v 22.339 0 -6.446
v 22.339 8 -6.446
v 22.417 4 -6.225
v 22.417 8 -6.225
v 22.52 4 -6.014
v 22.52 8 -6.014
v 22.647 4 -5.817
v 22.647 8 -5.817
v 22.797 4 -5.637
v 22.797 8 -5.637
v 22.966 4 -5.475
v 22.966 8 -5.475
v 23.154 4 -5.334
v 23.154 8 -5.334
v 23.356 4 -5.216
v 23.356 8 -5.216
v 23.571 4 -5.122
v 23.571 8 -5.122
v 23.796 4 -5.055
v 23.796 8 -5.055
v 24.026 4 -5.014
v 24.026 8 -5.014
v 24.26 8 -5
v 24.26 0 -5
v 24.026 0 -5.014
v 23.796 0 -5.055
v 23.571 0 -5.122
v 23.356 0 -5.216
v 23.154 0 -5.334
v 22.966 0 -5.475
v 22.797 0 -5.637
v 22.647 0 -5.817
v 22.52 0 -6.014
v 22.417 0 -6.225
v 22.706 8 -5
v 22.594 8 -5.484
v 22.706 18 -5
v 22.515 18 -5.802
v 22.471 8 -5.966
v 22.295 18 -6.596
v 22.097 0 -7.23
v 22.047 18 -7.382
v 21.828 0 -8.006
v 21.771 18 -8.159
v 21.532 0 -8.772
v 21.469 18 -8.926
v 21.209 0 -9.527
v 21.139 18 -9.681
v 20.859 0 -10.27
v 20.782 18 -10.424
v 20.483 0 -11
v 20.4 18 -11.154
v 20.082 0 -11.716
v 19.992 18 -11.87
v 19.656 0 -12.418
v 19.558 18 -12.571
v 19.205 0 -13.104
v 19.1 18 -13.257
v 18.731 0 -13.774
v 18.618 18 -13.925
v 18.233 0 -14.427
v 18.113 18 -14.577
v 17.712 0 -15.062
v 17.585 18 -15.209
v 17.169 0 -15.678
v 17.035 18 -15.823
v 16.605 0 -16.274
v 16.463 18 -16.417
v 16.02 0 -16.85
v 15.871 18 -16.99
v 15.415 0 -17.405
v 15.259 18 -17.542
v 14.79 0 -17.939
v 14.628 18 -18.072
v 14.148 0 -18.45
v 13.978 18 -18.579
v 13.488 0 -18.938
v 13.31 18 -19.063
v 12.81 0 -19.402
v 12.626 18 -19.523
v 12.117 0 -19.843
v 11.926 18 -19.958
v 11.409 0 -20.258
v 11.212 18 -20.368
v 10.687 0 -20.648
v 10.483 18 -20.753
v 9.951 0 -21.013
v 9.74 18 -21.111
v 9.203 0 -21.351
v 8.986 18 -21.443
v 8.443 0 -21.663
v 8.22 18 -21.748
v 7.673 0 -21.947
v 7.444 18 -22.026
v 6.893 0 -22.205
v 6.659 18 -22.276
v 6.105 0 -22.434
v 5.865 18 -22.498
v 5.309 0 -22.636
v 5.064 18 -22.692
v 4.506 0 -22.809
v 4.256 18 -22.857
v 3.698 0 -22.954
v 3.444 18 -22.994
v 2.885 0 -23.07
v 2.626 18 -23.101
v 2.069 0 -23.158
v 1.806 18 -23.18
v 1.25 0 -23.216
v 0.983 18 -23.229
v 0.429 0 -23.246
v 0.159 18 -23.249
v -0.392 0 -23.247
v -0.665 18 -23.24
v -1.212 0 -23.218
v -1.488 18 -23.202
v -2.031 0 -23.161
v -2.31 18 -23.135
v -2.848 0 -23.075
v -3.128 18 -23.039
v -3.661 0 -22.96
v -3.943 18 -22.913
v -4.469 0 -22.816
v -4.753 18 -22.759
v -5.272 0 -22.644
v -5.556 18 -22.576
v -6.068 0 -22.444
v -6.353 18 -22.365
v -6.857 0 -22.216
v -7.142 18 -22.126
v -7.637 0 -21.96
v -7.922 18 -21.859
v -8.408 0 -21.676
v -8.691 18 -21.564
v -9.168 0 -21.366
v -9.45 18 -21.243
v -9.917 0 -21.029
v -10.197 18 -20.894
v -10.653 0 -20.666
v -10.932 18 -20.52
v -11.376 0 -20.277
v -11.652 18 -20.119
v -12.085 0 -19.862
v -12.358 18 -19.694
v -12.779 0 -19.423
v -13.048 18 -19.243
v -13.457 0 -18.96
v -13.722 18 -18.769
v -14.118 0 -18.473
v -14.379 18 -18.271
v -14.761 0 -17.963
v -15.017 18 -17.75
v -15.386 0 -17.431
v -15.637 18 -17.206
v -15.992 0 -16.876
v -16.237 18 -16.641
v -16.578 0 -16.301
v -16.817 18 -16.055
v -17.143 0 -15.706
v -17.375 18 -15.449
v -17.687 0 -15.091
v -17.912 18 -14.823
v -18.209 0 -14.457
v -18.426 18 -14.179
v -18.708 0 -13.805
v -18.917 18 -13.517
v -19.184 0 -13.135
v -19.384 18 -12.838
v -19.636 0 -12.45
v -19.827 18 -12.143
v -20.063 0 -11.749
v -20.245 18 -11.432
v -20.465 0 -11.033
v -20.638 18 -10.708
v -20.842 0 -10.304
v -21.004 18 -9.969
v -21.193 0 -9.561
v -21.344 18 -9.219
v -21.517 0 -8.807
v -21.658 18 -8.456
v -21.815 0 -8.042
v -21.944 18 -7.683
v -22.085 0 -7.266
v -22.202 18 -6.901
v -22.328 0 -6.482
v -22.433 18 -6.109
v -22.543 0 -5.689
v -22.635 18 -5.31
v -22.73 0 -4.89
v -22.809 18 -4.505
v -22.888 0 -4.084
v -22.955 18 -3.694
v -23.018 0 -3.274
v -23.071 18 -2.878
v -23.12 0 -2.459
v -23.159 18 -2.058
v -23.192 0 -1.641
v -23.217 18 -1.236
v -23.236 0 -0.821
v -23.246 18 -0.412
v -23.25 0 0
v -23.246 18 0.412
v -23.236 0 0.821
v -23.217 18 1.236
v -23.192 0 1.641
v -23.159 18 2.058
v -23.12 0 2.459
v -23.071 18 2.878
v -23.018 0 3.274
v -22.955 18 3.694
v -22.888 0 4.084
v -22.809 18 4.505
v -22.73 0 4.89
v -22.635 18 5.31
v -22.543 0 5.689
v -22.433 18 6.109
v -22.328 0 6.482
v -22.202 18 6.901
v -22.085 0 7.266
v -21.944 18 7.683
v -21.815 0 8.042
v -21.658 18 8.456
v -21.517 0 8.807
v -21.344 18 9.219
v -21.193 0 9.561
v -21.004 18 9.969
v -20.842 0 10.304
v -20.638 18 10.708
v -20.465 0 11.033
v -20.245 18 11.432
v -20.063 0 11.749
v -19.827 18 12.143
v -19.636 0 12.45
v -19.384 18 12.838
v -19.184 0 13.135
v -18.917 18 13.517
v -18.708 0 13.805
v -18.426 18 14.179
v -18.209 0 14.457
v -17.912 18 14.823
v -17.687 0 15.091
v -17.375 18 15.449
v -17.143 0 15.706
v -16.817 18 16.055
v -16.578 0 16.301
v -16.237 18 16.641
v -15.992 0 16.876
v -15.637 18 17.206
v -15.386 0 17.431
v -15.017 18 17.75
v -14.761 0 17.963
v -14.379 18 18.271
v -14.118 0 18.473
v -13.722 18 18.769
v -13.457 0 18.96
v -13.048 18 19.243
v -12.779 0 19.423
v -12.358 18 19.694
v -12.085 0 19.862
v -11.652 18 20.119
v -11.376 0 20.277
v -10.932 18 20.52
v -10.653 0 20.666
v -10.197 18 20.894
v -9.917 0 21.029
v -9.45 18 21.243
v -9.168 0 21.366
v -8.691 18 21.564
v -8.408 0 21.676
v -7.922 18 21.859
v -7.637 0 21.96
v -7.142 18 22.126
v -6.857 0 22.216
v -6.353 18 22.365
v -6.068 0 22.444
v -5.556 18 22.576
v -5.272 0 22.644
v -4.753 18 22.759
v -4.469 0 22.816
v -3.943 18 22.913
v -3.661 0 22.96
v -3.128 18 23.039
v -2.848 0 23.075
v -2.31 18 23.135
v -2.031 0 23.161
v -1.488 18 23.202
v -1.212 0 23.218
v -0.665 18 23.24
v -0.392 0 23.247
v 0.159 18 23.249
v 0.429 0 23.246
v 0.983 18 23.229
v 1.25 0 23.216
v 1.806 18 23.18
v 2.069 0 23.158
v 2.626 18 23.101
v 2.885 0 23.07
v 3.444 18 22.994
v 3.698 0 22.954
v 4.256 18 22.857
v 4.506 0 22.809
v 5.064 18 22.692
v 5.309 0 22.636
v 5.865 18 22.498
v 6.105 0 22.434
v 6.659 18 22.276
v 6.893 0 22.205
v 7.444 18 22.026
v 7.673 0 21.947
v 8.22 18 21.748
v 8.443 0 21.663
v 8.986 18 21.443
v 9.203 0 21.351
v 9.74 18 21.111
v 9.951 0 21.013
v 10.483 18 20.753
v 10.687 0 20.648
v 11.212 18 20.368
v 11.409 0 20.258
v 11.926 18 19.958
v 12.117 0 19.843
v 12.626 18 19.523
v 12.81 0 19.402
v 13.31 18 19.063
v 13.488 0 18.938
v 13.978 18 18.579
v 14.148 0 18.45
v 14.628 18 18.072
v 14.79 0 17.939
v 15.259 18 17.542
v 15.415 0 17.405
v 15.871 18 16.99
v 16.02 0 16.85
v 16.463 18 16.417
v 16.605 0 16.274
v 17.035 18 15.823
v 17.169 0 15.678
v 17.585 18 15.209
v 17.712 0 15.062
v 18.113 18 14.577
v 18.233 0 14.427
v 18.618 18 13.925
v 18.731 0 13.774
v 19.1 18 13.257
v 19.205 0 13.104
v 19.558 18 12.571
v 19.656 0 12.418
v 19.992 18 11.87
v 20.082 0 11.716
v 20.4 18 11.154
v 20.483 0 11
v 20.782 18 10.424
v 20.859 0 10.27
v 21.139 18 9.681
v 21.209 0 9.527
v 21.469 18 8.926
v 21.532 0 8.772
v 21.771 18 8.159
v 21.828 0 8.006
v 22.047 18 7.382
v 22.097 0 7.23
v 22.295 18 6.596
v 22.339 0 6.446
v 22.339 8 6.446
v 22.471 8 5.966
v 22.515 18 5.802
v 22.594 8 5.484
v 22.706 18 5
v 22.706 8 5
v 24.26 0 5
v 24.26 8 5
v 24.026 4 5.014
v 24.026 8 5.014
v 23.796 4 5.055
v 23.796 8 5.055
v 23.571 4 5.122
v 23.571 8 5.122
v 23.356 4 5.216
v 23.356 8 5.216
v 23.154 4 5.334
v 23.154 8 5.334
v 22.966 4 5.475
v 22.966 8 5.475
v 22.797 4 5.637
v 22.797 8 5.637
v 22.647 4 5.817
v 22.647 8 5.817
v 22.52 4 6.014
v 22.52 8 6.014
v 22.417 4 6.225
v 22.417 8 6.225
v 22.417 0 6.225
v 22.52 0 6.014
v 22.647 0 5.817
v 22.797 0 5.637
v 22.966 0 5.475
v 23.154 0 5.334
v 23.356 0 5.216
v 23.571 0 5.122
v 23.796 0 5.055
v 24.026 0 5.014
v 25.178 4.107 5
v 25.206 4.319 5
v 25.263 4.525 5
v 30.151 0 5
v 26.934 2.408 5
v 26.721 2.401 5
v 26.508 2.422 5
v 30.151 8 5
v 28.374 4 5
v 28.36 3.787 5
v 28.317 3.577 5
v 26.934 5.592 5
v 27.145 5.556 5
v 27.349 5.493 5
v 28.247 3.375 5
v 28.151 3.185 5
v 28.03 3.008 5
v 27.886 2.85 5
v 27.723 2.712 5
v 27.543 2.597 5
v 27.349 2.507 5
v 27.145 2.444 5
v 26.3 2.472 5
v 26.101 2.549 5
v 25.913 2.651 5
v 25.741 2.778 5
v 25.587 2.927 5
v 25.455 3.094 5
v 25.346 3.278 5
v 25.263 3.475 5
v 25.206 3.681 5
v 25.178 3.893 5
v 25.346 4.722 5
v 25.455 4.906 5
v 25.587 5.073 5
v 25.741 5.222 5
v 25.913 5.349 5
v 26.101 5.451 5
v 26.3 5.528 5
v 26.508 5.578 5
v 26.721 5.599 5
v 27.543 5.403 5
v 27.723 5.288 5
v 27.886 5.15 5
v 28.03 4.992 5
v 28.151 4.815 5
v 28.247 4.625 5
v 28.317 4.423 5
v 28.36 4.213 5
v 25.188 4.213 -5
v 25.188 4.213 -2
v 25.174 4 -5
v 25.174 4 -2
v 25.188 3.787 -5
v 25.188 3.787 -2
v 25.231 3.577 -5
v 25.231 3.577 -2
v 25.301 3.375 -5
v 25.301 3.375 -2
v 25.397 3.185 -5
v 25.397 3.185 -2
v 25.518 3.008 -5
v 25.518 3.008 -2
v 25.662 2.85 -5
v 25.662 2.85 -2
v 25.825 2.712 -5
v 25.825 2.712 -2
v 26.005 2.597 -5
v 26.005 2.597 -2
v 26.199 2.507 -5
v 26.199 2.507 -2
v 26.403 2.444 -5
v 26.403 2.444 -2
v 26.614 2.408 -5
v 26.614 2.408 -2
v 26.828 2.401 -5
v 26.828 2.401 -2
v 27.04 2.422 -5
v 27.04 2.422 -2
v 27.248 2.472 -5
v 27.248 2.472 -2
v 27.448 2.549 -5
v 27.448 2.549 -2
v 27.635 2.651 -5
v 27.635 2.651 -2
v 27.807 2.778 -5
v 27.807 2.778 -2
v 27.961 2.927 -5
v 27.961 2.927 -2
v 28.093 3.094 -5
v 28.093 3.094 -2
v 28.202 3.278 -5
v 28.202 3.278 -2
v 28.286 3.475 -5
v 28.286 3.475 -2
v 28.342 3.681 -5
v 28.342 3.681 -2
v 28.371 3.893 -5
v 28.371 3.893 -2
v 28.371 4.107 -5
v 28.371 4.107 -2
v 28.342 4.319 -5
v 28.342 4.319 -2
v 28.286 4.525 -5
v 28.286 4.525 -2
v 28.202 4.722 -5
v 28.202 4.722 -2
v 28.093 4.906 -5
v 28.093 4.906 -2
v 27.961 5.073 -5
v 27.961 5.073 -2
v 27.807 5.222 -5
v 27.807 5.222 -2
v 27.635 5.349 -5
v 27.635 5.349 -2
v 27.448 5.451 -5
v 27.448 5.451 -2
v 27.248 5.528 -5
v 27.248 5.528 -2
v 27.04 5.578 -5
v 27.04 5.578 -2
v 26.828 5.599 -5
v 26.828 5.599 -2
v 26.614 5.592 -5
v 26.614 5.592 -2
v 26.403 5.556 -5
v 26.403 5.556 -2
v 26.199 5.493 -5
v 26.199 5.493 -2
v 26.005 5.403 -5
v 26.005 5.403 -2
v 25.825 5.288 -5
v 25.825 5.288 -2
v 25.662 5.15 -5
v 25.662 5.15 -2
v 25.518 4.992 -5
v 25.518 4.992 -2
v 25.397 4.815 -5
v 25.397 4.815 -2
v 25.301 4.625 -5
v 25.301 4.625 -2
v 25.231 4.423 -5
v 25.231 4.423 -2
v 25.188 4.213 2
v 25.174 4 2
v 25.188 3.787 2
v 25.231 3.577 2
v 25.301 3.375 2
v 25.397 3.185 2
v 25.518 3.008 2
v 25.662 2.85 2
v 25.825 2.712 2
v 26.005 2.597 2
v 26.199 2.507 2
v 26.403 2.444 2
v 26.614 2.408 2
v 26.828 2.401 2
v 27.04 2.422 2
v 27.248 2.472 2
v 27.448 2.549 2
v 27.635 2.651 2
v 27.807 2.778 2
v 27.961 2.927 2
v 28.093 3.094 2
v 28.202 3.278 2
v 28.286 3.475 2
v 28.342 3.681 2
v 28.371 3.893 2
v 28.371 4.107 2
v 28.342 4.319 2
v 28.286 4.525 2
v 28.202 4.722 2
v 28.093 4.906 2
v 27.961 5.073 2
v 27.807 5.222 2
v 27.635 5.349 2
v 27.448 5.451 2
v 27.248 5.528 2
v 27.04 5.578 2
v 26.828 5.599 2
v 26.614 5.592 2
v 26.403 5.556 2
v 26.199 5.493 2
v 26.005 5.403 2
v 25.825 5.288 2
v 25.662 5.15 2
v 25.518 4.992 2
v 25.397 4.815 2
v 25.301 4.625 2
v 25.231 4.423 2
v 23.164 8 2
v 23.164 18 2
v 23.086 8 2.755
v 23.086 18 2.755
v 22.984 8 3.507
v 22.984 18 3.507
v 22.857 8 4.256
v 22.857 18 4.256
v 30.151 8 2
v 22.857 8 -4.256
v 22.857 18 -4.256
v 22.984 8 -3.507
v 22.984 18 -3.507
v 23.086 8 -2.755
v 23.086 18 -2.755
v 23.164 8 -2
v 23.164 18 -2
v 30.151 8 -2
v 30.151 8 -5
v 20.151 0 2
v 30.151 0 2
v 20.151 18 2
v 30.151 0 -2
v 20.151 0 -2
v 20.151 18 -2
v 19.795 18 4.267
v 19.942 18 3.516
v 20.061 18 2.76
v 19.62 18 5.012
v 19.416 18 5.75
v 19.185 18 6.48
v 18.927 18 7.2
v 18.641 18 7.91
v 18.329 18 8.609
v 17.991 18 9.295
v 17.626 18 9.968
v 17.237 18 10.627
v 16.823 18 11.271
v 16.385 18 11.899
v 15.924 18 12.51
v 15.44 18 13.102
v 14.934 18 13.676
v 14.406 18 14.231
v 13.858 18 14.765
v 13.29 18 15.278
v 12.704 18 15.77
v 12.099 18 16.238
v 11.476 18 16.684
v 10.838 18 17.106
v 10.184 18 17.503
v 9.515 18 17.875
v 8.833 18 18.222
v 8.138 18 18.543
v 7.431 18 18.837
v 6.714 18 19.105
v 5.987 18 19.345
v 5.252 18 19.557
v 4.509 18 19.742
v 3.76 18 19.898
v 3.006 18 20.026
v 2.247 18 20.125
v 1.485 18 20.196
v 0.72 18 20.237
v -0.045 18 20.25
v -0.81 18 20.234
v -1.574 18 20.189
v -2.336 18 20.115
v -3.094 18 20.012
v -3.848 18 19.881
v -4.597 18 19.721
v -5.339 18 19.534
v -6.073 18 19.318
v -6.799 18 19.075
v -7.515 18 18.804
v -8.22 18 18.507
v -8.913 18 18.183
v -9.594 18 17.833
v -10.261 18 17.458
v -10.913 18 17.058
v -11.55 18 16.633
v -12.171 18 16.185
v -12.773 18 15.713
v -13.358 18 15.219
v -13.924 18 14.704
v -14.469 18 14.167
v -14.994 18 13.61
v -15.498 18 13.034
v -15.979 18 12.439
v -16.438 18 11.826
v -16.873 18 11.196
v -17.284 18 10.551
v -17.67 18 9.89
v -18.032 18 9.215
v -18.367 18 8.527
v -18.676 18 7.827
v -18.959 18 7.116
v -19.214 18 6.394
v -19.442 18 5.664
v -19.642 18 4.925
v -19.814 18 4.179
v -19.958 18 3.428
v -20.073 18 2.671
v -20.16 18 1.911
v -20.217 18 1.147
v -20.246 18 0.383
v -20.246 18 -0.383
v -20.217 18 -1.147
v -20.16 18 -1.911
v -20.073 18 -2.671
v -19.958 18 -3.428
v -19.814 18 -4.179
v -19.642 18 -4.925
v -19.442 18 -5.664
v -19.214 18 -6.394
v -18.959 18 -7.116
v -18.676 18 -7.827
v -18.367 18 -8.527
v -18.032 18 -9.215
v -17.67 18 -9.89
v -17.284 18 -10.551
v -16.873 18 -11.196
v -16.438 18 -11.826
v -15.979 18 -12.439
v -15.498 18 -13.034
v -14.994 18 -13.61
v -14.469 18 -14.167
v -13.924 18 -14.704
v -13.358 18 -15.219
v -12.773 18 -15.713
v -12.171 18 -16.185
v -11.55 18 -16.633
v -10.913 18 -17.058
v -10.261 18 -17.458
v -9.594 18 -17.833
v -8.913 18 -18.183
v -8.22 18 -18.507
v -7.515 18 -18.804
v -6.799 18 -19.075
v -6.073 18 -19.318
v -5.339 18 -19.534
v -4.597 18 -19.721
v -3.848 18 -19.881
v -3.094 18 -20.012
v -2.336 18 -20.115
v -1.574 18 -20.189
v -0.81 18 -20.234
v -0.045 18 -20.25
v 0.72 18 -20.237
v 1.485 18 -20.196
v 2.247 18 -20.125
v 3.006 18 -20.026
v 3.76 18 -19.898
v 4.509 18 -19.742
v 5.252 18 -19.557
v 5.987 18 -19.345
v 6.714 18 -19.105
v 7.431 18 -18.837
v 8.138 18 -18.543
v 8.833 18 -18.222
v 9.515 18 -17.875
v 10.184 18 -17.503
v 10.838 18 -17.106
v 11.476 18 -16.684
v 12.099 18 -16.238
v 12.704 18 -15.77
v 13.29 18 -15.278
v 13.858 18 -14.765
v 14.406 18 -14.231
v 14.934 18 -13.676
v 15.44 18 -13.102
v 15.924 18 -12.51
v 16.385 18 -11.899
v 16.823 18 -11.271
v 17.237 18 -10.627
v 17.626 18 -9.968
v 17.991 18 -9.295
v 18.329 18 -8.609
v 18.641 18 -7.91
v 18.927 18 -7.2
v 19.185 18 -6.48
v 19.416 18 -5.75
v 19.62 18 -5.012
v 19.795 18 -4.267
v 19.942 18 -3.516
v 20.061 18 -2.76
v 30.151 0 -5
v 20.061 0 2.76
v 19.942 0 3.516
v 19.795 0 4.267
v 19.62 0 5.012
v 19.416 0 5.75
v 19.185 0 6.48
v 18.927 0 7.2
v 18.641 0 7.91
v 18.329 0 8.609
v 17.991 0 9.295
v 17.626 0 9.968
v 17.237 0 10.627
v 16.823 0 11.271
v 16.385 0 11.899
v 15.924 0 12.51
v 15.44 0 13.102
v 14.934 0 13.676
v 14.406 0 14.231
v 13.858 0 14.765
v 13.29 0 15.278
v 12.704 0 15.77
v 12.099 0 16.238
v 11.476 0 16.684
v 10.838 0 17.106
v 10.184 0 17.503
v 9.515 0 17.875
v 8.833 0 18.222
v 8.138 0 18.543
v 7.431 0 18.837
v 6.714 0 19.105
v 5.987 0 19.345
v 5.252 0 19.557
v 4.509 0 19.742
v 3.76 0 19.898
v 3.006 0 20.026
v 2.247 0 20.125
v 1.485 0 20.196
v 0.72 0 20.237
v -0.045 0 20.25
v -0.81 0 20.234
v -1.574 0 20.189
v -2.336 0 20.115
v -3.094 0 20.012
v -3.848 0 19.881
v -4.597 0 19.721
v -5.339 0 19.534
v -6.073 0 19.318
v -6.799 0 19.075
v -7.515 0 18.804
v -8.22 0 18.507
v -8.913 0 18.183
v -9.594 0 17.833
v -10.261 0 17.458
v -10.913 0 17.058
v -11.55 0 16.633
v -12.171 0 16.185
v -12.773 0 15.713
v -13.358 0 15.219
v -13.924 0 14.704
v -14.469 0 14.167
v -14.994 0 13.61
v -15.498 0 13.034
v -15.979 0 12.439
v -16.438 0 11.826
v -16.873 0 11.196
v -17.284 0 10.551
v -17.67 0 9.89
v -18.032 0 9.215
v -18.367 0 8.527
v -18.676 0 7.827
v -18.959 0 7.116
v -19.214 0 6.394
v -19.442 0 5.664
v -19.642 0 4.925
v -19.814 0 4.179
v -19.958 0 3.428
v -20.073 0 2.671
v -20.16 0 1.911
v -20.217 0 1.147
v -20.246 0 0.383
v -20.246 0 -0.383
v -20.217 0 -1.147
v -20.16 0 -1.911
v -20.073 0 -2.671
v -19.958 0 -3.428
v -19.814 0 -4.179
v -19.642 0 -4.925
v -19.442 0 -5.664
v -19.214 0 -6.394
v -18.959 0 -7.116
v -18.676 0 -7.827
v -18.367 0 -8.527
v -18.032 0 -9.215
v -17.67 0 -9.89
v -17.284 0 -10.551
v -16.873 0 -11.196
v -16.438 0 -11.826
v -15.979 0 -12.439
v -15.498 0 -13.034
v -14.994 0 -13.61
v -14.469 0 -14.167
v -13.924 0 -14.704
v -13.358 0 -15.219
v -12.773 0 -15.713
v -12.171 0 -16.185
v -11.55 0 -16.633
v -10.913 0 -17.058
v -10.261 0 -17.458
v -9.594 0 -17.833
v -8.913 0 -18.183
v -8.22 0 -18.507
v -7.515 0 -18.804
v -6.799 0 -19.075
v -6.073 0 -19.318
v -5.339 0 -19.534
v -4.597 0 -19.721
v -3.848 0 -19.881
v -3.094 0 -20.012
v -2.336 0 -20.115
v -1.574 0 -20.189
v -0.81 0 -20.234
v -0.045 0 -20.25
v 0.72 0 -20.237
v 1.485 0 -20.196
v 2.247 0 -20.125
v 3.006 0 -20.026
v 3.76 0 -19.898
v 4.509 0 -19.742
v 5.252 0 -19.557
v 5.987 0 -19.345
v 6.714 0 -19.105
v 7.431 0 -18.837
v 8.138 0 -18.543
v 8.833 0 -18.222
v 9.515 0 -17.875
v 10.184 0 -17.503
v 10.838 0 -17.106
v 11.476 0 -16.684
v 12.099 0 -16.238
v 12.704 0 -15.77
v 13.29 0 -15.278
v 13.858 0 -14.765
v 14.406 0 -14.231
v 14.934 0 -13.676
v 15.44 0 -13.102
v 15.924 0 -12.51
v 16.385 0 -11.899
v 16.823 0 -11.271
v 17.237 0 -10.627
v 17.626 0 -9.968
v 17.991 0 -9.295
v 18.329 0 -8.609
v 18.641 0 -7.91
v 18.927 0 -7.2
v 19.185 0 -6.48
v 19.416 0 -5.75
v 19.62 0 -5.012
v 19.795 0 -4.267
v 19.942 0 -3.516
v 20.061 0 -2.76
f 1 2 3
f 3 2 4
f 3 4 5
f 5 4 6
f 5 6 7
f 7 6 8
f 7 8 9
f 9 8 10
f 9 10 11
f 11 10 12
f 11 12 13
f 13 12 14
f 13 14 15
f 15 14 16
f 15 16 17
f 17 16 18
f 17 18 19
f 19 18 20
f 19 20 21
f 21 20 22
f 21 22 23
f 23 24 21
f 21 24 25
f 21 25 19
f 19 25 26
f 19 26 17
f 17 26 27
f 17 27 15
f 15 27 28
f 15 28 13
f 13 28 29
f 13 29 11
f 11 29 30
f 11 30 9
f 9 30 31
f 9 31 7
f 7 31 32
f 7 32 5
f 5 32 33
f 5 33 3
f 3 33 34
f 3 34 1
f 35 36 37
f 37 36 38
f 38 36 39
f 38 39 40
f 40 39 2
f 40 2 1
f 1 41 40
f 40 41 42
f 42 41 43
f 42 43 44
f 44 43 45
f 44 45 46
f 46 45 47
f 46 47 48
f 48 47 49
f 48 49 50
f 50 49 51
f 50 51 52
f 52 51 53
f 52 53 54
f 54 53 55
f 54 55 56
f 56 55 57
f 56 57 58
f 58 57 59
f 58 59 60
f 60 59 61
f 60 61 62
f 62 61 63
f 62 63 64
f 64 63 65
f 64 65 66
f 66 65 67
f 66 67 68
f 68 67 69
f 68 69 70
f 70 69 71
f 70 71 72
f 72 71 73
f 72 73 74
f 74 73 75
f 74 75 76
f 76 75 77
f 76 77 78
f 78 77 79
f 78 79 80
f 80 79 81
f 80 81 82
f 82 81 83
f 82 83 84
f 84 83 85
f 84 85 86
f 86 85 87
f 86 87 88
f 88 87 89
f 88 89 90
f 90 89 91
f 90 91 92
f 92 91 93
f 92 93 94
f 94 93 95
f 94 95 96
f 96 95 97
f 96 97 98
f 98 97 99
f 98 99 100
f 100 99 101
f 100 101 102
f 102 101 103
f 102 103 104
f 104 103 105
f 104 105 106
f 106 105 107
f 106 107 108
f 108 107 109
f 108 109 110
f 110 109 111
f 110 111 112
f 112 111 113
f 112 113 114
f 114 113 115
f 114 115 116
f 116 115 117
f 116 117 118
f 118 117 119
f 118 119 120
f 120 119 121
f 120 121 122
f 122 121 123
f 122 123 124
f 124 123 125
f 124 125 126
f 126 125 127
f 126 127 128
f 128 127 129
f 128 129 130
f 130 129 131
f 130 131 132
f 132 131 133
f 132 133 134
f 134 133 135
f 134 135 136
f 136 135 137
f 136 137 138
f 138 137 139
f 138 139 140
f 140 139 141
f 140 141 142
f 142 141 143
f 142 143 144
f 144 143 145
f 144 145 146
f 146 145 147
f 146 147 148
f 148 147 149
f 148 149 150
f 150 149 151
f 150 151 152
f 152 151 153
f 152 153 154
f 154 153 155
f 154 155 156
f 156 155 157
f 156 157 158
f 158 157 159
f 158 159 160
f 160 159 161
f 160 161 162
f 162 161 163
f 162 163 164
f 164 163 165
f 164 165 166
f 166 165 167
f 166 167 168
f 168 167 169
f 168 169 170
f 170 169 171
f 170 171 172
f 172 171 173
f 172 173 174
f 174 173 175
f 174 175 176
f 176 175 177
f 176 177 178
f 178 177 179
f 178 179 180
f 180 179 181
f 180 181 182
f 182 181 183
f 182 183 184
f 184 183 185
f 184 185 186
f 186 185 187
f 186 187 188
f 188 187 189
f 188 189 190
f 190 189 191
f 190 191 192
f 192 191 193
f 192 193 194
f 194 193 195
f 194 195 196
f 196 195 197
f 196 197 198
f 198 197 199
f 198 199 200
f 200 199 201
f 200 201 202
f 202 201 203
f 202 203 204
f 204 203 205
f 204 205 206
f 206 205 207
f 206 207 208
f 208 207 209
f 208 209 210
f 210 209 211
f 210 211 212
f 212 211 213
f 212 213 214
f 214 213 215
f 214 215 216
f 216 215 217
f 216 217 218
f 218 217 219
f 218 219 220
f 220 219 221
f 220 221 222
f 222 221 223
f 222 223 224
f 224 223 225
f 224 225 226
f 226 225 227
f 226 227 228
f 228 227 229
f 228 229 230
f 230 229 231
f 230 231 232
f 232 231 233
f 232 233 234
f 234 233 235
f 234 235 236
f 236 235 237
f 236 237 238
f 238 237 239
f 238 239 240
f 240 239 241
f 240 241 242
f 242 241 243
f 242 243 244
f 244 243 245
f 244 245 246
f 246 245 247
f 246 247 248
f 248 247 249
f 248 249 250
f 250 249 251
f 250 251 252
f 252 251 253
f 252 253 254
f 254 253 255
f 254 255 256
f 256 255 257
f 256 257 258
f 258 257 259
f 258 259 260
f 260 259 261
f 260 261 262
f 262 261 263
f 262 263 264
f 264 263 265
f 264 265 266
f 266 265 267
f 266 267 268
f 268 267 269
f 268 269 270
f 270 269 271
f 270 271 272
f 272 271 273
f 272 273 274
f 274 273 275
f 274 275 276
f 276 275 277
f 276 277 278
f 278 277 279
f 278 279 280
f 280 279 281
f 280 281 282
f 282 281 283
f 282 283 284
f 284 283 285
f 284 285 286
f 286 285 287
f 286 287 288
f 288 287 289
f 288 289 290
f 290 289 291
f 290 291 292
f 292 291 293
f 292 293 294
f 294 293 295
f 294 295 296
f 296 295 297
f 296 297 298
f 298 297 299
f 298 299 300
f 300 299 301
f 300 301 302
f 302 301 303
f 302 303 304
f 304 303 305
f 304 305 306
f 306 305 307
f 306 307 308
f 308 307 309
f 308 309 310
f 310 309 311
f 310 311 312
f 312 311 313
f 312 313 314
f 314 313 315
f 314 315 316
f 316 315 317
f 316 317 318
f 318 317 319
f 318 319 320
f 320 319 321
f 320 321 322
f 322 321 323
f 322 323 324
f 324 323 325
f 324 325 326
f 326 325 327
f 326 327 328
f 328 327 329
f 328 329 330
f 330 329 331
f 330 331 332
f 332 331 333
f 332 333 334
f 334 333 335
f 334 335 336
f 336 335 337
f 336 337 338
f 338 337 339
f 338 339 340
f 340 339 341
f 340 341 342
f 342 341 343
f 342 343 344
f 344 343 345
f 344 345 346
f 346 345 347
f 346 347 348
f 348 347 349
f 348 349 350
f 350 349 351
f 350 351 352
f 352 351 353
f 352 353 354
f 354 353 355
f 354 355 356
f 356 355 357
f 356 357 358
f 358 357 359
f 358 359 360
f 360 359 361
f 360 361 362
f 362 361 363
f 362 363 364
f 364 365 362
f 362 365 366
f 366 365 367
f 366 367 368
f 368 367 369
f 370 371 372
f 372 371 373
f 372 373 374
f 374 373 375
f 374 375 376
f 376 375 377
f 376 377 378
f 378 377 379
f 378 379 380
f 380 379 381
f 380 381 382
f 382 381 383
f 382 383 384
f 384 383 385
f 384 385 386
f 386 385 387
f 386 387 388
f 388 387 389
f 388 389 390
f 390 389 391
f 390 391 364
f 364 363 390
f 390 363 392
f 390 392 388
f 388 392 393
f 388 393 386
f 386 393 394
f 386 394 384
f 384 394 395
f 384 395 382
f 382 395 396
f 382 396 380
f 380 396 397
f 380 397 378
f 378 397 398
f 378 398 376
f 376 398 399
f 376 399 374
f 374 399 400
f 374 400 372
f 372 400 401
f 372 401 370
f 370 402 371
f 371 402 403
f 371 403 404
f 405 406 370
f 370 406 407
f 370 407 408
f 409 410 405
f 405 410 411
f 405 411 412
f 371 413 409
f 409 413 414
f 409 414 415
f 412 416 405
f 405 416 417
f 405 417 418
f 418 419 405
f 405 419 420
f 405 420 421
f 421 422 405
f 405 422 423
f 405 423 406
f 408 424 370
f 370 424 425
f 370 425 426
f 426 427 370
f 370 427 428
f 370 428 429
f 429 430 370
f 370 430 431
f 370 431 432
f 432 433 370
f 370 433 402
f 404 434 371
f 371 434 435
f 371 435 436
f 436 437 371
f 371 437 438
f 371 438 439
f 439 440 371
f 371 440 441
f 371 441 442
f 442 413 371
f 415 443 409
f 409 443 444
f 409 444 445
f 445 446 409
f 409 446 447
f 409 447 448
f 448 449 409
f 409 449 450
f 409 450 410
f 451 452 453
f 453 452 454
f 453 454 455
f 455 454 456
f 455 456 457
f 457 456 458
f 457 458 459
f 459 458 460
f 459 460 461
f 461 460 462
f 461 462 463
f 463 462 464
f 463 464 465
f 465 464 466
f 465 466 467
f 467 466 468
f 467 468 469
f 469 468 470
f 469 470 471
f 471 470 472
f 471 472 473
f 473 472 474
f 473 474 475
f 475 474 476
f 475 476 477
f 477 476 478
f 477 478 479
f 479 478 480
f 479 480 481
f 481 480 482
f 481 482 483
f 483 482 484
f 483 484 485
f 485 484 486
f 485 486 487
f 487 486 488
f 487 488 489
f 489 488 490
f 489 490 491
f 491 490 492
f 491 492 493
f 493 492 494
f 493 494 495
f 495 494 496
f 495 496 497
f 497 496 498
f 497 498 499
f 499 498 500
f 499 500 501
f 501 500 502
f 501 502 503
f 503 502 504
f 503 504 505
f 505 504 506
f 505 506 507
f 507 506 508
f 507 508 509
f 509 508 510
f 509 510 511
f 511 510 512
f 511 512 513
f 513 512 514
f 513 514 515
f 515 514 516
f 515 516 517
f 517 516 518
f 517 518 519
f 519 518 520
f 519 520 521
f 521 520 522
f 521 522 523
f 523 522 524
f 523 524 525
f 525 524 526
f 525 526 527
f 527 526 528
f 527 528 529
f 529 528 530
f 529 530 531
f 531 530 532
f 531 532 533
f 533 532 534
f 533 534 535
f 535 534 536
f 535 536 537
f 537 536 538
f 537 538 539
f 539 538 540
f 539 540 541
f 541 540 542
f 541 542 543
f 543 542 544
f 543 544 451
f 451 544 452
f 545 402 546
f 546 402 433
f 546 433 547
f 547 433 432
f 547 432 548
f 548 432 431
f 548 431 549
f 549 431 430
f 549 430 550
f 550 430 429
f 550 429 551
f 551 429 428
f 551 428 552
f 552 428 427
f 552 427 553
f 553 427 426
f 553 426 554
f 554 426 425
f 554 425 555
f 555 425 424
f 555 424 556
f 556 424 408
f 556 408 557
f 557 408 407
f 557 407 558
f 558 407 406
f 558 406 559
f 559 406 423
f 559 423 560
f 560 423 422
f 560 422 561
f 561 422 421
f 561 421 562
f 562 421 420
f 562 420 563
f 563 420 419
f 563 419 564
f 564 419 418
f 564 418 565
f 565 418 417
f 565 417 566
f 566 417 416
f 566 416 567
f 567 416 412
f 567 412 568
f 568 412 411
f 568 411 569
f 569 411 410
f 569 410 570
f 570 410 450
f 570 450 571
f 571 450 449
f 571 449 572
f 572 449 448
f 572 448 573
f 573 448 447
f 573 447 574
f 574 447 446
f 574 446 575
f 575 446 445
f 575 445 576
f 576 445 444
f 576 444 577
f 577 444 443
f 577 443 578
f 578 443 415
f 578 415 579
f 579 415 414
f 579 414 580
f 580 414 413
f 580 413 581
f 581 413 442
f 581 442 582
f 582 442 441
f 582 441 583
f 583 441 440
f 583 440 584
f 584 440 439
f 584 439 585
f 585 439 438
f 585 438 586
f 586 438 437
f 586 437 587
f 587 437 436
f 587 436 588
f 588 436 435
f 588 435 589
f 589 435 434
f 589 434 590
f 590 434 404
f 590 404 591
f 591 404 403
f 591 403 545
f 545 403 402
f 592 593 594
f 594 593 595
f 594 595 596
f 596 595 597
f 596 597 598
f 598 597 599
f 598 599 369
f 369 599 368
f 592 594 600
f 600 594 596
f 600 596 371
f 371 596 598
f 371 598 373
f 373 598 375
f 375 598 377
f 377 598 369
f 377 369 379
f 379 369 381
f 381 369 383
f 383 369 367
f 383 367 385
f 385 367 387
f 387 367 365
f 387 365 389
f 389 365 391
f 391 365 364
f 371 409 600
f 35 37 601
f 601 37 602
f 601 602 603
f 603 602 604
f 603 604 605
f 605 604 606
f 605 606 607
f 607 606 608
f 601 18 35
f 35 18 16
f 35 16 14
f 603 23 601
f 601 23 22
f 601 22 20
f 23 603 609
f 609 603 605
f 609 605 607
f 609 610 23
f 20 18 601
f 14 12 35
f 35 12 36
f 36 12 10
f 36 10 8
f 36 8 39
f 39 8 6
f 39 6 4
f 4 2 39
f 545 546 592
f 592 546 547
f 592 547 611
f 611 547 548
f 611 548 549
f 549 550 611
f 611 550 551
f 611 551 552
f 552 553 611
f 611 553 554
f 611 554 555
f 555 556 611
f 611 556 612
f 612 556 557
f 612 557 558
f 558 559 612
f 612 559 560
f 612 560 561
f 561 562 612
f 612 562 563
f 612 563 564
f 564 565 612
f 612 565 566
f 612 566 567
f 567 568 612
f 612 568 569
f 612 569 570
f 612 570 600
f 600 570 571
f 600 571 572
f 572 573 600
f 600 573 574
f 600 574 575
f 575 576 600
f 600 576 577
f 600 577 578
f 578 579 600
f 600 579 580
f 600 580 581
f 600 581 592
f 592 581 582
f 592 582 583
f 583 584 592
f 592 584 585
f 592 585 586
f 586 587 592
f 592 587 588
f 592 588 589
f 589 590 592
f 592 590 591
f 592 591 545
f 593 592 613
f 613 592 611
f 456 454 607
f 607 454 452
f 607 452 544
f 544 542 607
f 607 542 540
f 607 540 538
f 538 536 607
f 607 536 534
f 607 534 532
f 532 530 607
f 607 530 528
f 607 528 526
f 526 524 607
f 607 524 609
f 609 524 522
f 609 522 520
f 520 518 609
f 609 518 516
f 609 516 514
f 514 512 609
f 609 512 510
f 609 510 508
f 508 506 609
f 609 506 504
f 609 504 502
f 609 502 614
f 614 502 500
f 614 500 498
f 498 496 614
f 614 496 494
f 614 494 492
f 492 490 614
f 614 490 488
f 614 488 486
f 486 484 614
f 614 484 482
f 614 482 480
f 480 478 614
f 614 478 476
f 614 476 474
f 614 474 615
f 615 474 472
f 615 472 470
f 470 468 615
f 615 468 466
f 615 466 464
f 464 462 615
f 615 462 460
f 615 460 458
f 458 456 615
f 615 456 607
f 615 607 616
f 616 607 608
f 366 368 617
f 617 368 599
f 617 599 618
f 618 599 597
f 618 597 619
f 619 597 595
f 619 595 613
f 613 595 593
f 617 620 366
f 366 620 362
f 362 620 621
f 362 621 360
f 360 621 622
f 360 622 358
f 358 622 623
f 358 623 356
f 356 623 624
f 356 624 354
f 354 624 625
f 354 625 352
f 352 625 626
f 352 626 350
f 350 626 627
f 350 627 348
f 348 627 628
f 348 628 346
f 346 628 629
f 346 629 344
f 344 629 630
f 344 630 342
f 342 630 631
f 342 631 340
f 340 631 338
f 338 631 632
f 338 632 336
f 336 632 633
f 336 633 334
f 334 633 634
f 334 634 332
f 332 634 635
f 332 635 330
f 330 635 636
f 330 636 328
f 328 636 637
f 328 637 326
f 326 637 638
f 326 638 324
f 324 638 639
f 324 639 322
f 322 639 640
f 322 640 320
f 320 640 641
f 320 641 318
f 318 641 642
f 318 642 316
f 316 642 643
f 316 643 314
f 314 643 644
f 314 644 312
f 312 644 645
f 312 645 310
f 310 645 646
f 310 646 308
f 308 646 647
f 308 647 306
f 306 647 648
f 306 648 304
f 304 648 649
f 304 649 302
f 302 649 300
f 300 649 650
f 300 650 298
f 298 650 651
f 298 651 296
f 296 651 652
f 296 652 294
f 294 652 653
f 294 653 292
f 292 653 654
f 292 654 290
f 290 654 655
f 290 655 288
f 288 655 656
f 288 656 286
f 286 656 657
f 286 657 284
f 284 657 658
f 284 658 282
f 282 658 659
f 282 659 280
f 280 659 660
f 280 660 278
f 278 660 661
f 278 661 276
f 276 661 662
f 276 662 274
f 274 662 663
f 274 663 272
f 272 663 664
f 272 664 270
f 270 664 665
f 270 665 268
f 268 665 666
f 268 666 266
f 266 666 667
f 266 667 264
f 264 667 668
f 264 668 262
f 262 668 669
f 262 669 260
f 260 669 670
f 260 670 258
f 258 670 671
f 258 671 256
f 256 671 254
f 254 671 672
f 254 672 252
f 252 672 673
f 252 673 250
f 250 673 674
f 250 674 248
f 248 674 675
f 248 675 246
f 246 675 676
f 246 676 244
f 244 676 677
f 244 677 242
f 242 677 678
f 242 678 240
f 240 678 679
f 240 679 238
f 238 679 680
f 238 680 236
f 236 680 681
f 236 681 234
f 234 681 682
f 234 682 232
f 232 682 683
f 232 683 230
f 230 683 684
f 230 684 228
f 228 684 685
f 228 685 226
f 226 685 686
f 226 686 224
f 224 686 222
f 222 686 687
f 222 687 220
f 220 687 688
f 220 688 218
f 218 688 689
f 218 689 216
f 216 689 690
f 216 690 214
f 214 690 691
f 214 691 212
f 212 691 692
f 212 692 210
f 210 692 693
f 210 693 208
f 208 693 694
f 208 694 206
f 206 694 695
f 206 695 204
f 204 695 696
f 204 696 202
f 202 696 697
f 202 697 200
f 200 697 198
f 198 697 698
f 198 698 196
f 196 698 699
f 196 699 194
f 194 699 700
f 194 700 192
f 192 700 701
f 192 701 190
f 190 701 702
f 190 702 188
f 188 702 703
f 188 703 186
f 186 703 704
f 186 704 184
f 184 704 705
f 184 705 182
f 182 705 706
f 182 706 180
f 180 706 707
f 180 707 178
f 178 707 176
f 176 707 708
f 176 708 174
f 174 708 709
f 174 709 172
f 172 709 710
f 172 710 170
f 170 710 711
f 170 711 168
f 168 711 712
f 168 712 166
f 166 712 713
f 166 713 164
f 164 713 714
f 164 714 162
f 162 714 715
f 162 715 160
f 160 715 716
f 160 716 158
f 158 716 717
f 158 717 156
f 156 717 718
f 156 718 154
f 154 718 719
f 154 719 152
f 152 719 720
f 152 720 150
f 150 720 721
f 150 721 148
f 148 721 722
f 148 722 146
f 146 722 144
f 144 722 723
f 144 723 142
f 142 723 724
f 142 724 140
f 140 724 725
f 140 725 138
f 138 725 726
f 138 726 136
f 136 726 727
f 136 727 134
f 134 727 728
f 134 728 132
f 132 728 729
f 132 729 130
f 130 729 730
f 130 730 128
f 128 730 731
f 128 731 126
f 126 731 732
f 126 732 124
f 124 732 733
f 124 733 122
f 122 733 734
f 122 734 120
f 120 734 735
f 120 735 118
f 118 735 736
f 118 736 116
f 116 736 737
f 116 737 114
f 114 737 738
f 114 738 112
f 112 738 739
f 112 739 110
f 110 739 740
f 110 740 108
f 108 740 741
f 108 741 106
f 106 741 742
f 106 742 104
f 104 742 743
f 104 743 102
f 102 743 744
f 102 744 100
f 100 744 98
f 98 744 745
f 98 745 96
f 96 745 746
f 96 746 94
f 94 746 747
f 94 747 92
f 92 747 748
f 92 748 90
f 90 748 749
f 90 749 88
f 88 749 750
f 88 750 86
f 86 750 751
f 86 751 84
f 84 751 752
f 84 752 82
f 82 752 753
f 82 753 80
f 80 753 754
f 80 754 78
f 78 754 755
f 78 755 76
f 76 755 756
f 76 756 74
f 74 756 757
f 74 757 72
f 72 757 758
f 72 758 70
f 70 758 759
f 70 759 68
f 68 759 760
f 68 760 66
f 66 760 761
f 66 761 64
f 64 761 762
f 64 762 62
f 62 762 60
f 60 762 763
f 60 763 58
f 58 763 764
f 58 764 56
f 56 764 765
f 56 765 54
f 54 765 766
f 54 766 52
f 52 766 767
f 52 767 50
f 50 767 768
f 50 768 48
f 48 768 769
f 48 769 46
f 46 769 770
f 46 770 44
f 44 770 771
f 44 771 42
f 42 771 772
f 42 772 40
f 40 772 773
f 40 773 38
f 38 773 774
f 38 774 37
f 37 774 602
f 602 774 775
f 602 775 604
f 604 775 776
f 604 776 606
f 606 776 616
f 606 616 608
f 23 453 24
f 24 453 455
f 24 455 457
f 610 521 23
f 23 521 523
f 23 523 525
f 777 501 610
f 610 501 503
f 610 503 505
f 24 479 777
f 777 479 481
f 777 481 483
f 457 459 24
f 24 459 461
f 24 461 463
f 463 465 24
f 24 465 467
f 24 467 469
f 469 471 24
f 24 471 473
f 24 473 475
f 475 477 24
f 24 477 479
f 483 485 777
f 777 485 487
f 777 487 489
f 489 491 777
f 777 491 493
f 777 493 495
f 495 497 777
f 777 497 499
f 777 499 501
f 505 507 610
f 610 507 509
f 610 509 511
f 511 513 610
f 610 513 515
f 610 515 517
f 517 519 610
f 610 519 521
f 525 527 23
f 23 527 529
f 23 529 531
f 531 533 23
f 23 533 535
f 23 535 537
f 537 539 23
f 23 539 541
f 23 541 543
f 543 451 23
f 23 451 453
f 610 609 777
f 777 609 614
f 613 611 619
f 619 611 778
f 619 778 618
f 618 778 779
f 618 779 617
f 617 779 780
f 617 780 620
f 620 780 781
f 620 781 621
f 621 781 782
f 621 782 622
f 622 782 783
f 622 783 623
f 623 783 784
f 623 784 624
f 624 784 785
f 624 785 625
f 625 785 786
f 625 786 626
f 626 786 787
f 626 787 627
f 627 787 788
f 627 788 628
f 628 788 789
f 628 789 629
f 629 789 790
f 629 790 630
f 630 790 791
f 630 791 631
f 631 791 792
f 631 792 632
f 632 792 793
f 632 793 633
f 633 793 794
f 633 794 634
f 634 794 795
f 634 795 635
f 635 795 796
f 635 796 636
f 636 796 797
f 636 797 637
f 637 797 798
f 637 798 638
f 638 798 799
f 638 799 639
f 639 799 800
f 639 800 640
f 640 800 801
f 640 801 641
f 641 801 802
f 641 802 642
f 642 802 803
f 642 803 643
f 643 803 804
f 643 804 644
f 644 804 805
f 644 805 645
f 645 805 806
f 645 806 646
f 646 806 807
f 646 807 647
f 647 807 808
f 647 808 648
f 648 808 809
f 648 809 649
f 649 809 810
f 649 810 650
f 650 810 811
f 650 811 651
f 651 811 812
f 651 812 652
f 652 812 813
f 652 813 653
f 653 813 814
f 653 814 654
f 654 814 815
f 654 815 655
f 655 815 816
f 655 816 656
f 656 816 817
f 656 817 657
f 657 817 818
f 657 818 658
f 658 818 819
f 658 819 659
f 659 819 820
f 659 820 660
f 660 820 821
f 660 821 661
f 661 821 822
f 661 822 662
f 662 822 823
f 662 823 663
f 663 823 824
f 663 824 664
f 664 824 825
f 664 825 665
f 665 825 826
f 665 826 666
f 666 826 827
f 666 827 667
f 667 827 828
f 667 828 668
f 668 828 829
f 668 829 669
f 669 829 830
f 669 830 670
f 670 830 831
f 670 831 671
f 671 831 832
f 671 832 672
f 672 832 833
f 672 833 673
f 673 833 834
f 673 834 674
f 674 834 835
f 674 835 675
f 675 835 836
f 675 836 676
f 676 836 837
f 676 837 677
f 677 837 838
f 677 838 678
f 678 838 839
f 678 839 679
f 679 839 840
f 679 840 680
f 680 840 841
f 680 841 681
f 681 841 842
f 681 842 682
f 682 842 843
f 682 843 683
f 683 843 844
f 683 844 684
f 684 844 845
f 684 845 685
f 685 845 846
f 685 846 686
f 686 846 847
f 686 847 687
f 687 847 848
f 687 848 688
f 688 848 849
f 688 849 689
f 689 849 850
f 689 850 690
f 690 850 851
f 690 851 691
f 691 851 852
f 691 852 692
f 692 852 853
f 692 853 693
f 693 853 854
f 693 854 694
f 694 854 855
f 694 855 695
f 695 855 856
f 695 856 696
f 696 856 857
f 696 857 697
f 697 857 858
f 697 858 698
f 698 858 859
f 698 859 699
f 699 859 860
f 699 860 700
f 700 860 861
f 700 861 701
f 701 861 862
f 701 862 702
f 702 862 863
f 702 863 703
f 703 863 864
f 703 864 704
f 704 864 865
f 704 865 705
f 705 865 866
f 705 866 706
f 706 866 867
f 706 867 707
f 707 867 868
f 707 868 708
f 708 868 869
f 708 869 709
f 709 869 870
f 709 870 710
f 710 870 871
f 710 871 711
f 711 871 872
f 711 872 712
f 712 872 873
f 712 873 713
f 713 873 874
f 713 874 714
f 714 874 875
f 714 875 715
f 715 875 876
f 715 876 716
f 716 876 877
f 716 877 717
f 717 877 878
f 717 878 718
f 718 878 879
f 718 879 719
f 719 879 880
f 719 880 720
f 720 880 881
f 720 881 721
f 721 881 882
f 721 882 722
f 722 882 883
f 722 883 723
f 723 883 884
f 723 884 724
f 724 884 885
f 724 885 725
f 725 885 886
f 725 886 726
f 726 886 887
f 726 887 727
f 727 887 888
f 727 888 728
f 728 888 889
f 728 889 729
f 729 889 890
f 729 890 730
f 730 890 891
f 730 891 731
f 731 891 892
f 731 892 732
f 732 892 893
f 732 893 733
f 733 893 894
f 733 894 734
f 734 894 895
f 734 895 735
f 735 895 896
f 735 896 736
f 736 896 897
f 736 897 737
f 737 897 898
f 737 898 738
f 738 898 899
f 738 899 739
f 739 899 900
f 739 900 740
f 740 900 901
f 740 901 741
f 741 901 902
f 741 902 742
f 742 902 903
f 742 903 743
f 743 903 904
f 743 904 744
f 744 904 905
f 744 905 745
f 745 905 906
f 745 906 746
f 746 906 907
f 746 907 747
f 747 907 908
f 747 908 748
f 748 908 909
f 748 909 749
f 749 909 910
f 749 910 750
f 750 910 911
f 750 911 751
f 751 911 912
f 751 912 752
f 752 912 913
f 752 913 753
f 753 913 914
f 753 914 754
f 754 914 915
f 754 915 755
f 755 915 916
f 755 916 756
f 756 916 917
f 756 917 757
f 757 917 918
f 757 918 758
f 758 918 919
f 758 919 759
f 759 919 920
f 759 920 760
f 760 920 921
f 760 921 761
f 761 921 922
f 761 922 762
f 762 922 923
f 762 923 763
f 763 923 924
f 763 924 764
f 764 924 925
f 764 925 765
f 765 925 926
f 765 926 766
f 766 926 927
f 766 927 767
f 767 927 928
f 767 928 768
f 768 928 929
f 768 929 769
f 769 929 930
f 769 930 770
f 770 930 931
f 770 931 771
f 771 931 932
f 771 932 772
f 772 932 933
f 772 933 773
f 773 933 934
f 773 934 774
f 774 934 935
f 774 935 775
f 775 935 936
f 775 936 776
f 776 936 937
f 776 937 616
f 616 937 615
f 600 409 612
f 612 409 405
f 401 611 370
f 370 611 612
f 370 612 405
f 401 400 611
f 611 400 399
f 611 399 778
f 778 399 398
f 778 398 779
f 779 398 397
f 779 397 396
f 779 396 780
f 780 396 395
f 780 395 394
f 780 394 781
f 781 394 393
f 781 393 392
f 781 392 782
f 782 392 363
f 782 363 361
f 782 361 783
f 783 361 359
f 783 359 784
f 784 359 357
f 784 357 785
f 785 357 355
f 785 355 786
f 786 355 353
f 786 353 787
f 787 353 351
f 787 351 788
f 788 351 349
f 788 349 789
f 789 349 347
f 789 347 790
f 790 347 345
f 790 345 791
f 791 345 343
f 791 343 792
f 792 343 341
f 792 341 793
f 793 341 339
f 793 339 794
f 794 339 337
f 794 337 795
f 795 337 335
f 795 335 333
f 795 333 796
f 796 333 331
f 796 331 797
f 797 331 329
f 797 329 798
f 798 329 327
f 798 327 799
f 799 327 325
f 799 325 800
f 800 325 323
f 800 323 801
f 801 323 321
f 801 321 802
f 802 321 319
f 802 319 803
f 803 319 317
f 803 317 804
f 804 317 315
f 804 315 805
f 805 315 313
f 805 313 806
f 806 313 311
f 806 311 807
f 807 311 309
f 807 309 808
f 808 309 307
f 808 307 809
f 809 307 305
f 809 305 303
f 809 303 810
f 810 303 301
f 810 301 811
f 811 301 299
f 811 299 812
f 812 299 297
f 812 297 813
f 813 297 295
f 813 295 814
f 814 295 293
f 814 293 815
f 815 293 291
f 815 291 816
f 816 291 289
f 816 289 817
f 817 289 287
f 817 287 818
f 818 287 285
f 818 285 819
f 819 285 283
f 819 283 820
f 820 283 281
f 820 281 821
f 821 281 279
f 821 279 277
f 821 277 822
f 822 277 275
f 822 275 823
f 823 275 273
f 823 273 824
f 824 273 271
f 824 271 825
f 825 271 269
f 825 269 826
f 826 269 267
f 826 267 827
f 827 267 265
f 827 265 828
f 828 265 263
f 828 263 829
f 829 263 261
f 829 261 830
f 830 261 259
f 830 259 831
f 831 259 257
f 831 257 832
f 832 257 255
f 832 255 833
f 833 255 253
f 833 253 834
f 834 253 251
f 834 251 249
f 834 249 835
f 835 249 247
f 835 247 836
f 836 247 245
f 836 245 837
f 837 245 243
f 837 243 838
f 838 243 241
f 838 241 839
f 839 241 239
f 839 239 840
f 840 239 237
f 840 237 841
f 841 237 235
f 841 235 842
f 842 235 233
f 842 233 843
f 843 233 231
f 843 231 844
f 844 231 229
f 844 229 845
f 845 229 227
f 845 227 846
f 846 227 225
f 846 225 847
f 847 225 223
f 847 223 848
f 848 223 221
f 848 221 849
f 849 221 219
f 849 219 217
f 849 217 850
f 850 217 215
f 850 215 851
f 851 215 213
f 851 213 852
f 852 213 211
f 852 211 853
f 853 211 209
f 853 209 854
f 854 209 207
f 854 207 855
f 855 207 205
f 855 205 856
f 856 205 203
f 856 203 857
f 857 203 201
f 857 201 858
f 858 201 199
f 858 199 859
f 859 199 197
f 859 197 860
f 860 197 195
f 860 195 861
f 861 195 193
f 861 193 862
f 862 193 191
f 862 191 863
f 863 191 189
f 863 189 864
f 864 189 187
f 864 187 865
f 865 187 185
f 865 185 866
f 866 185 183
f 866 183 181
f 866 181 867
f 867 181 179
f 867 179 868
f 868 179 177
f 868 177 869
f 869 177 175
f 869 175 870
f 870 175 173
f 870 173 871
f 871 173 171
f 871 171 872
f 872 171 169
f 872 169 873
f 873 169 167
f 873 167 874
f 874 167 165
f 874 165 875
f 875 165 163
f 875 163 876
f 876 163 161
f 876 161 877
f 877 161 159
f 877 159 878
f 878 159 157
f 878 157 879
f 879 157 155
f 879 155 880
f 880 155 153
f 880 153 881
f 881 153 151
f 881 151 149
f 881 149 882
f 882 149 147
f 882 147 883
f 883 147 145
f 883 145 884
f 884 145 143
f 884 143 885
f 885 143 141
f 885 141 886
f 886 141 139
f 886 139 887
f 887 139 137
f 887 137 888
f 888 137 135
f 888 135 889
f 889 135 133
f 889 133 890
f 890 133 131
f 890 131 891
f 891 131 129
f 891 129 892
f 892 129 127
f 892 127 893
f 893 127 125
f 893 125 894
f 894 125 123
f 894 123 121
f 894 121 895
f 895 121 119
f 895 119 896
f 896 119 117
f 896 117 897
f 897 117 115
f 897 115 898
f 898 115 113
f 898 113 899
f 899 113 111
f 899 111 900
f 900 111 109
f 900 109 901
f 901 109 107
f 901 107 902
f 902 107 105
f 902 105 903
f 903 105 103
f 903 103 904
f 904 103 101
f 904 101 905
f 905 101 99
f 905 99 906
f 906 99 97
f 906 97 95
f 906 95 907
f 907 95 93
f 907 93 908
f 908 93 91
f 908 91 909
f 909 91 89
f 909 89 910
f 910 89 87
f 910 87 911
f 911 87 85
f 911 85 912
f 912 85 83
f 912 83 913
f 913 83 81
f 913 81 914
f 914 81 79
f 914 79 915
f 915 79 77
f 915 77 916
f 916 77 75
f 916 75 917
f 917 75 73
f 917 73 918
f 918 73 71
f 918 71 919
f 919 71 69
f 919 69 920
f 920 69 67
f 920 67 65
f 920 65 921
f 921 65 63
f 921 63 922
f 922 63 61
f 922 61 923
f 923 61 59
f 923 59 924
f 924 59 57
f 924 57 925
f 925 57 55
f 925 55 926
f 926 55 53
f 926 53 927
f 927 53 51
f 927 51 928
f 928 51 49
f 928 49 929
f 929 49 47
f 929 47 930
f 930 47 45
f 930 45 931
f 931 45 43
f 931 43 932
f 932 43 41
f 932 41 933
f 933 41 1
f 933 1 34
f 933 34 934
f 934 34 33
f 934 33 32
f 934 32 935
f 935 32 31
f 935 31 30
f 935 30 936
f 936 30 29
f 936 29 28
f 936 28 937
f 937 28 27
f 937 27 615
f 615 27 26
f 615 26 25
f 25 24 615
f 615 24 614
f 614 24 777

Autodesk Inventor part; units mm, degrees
ref_plane "YZ Plane" through (0, 0, 0) normal (1, 0, 0) x (0, 1, 0)
ref_plane "XZ Plane" through (0, 0, 0) normal (0, 1, 0) x (-1, 0, 0)
ref_plane "XY Plane" through (0, 0, 0) normal (0, 0, 1) x (1, 0, 0)
sketch "Sketch1" plane through (0, 0, 0) normal (0, 1, 0) x (-1, 0, 0)
  circle A0 centre (0, 0) radius 20.25
  circle A1 centre (0, 0) radius 23.25
  line L0 (-20.151, 2) -> (-30.151, 2)
  line L1 (-30.151, 2) -> (-30.151, 5)
  line L2 (-30.151, 5) -> (-20.151, 5)
  line L3 (-20.151, 5) -> (-20.151, 2)
  line L4 (-20.151, -2) -> (-30.151, -2)
  line L5 (-30.151, -2) -> (-30.151, -5)
  line L6 (-30.151, -5) -> (-20.151, -5)
  line L7 (-20.151, -5) -> (-20.151, -2)
  point P0 (-22.706, -5)
  point P1 (-22.706, 5)
  dimension "d0" = 40.5
  dimension "d2" = 3
  dimension "d3" = 3
  dimension "d4" = 2
  dimension "d5" = 10
  dimension "d17" = 3
extrude "Extrusion1" add sketch "Sketch1" along normal blind 18 contours A0 L3 L2 A1 L6 L7 | L0 A1 L2 L3 | L7 L6 A1 L4 | L0 L1 L2 A1 | A1 L6 L5 L4
sketch "Sketch2" plane through (0, 18, 0) normal (0, 1, 0) x (1, 0, 0)
  line L0 (22.706, -5) -> (30.151, -5) projected
  line L1 (30.151, -5) -> (30.151, -2) projected
  line L2 (30.151, -2) -> (20.151, -2) projected
  arc A0 (20.151, 2) -> (20.151, -2) centre (0, 0) ccw projected
  line L3 (20.151, 2) -> (30.151, 2) projected
  line L4 (30.151, 2) -> (30.151, 5) projected
  line L5 (30.151, 5) -> (22.706, 5) projected
  arc A1 (22.706, 5) -> (22.706, -5) centre (0, 0) ccw projected
  line L6 (22.706, -5) -> (30.151, -5) projected
  arc A2 (22.706, -5) -> (22.706, 5) centre (0, 0) ccw
  point P0 (23.1638, -2)
  point P1 (23.1638, 2)
extrude "Extrusion2" cut sketch "Sketch2" against normal blind 10 contours A2 L2 L1 L0 | L5 L4 L3 A2
sketch "Sketch3" plane through (22.706, 0, 5) normal (0, 0, 1) x (1, 0, 0)
  circle A0 centre (4.0681, 4) radius 1.6
  line L0 (0, 0) -> (7.445, 0) projected
  line L1 (7.445, 8) -> (0, 8) projected
  point P0 (-22.706, 0)
  dimension "d11" = 3.2
  dimension "d12" = 4
extrude "Extrusion3" cut sketch "Sketch3" against normal blind 22
fillet "Fillet1" radius 2 2 edges at (22.706, 4, 5) (22.706, 4, -5)
properties part number "Bearing_fixing"
